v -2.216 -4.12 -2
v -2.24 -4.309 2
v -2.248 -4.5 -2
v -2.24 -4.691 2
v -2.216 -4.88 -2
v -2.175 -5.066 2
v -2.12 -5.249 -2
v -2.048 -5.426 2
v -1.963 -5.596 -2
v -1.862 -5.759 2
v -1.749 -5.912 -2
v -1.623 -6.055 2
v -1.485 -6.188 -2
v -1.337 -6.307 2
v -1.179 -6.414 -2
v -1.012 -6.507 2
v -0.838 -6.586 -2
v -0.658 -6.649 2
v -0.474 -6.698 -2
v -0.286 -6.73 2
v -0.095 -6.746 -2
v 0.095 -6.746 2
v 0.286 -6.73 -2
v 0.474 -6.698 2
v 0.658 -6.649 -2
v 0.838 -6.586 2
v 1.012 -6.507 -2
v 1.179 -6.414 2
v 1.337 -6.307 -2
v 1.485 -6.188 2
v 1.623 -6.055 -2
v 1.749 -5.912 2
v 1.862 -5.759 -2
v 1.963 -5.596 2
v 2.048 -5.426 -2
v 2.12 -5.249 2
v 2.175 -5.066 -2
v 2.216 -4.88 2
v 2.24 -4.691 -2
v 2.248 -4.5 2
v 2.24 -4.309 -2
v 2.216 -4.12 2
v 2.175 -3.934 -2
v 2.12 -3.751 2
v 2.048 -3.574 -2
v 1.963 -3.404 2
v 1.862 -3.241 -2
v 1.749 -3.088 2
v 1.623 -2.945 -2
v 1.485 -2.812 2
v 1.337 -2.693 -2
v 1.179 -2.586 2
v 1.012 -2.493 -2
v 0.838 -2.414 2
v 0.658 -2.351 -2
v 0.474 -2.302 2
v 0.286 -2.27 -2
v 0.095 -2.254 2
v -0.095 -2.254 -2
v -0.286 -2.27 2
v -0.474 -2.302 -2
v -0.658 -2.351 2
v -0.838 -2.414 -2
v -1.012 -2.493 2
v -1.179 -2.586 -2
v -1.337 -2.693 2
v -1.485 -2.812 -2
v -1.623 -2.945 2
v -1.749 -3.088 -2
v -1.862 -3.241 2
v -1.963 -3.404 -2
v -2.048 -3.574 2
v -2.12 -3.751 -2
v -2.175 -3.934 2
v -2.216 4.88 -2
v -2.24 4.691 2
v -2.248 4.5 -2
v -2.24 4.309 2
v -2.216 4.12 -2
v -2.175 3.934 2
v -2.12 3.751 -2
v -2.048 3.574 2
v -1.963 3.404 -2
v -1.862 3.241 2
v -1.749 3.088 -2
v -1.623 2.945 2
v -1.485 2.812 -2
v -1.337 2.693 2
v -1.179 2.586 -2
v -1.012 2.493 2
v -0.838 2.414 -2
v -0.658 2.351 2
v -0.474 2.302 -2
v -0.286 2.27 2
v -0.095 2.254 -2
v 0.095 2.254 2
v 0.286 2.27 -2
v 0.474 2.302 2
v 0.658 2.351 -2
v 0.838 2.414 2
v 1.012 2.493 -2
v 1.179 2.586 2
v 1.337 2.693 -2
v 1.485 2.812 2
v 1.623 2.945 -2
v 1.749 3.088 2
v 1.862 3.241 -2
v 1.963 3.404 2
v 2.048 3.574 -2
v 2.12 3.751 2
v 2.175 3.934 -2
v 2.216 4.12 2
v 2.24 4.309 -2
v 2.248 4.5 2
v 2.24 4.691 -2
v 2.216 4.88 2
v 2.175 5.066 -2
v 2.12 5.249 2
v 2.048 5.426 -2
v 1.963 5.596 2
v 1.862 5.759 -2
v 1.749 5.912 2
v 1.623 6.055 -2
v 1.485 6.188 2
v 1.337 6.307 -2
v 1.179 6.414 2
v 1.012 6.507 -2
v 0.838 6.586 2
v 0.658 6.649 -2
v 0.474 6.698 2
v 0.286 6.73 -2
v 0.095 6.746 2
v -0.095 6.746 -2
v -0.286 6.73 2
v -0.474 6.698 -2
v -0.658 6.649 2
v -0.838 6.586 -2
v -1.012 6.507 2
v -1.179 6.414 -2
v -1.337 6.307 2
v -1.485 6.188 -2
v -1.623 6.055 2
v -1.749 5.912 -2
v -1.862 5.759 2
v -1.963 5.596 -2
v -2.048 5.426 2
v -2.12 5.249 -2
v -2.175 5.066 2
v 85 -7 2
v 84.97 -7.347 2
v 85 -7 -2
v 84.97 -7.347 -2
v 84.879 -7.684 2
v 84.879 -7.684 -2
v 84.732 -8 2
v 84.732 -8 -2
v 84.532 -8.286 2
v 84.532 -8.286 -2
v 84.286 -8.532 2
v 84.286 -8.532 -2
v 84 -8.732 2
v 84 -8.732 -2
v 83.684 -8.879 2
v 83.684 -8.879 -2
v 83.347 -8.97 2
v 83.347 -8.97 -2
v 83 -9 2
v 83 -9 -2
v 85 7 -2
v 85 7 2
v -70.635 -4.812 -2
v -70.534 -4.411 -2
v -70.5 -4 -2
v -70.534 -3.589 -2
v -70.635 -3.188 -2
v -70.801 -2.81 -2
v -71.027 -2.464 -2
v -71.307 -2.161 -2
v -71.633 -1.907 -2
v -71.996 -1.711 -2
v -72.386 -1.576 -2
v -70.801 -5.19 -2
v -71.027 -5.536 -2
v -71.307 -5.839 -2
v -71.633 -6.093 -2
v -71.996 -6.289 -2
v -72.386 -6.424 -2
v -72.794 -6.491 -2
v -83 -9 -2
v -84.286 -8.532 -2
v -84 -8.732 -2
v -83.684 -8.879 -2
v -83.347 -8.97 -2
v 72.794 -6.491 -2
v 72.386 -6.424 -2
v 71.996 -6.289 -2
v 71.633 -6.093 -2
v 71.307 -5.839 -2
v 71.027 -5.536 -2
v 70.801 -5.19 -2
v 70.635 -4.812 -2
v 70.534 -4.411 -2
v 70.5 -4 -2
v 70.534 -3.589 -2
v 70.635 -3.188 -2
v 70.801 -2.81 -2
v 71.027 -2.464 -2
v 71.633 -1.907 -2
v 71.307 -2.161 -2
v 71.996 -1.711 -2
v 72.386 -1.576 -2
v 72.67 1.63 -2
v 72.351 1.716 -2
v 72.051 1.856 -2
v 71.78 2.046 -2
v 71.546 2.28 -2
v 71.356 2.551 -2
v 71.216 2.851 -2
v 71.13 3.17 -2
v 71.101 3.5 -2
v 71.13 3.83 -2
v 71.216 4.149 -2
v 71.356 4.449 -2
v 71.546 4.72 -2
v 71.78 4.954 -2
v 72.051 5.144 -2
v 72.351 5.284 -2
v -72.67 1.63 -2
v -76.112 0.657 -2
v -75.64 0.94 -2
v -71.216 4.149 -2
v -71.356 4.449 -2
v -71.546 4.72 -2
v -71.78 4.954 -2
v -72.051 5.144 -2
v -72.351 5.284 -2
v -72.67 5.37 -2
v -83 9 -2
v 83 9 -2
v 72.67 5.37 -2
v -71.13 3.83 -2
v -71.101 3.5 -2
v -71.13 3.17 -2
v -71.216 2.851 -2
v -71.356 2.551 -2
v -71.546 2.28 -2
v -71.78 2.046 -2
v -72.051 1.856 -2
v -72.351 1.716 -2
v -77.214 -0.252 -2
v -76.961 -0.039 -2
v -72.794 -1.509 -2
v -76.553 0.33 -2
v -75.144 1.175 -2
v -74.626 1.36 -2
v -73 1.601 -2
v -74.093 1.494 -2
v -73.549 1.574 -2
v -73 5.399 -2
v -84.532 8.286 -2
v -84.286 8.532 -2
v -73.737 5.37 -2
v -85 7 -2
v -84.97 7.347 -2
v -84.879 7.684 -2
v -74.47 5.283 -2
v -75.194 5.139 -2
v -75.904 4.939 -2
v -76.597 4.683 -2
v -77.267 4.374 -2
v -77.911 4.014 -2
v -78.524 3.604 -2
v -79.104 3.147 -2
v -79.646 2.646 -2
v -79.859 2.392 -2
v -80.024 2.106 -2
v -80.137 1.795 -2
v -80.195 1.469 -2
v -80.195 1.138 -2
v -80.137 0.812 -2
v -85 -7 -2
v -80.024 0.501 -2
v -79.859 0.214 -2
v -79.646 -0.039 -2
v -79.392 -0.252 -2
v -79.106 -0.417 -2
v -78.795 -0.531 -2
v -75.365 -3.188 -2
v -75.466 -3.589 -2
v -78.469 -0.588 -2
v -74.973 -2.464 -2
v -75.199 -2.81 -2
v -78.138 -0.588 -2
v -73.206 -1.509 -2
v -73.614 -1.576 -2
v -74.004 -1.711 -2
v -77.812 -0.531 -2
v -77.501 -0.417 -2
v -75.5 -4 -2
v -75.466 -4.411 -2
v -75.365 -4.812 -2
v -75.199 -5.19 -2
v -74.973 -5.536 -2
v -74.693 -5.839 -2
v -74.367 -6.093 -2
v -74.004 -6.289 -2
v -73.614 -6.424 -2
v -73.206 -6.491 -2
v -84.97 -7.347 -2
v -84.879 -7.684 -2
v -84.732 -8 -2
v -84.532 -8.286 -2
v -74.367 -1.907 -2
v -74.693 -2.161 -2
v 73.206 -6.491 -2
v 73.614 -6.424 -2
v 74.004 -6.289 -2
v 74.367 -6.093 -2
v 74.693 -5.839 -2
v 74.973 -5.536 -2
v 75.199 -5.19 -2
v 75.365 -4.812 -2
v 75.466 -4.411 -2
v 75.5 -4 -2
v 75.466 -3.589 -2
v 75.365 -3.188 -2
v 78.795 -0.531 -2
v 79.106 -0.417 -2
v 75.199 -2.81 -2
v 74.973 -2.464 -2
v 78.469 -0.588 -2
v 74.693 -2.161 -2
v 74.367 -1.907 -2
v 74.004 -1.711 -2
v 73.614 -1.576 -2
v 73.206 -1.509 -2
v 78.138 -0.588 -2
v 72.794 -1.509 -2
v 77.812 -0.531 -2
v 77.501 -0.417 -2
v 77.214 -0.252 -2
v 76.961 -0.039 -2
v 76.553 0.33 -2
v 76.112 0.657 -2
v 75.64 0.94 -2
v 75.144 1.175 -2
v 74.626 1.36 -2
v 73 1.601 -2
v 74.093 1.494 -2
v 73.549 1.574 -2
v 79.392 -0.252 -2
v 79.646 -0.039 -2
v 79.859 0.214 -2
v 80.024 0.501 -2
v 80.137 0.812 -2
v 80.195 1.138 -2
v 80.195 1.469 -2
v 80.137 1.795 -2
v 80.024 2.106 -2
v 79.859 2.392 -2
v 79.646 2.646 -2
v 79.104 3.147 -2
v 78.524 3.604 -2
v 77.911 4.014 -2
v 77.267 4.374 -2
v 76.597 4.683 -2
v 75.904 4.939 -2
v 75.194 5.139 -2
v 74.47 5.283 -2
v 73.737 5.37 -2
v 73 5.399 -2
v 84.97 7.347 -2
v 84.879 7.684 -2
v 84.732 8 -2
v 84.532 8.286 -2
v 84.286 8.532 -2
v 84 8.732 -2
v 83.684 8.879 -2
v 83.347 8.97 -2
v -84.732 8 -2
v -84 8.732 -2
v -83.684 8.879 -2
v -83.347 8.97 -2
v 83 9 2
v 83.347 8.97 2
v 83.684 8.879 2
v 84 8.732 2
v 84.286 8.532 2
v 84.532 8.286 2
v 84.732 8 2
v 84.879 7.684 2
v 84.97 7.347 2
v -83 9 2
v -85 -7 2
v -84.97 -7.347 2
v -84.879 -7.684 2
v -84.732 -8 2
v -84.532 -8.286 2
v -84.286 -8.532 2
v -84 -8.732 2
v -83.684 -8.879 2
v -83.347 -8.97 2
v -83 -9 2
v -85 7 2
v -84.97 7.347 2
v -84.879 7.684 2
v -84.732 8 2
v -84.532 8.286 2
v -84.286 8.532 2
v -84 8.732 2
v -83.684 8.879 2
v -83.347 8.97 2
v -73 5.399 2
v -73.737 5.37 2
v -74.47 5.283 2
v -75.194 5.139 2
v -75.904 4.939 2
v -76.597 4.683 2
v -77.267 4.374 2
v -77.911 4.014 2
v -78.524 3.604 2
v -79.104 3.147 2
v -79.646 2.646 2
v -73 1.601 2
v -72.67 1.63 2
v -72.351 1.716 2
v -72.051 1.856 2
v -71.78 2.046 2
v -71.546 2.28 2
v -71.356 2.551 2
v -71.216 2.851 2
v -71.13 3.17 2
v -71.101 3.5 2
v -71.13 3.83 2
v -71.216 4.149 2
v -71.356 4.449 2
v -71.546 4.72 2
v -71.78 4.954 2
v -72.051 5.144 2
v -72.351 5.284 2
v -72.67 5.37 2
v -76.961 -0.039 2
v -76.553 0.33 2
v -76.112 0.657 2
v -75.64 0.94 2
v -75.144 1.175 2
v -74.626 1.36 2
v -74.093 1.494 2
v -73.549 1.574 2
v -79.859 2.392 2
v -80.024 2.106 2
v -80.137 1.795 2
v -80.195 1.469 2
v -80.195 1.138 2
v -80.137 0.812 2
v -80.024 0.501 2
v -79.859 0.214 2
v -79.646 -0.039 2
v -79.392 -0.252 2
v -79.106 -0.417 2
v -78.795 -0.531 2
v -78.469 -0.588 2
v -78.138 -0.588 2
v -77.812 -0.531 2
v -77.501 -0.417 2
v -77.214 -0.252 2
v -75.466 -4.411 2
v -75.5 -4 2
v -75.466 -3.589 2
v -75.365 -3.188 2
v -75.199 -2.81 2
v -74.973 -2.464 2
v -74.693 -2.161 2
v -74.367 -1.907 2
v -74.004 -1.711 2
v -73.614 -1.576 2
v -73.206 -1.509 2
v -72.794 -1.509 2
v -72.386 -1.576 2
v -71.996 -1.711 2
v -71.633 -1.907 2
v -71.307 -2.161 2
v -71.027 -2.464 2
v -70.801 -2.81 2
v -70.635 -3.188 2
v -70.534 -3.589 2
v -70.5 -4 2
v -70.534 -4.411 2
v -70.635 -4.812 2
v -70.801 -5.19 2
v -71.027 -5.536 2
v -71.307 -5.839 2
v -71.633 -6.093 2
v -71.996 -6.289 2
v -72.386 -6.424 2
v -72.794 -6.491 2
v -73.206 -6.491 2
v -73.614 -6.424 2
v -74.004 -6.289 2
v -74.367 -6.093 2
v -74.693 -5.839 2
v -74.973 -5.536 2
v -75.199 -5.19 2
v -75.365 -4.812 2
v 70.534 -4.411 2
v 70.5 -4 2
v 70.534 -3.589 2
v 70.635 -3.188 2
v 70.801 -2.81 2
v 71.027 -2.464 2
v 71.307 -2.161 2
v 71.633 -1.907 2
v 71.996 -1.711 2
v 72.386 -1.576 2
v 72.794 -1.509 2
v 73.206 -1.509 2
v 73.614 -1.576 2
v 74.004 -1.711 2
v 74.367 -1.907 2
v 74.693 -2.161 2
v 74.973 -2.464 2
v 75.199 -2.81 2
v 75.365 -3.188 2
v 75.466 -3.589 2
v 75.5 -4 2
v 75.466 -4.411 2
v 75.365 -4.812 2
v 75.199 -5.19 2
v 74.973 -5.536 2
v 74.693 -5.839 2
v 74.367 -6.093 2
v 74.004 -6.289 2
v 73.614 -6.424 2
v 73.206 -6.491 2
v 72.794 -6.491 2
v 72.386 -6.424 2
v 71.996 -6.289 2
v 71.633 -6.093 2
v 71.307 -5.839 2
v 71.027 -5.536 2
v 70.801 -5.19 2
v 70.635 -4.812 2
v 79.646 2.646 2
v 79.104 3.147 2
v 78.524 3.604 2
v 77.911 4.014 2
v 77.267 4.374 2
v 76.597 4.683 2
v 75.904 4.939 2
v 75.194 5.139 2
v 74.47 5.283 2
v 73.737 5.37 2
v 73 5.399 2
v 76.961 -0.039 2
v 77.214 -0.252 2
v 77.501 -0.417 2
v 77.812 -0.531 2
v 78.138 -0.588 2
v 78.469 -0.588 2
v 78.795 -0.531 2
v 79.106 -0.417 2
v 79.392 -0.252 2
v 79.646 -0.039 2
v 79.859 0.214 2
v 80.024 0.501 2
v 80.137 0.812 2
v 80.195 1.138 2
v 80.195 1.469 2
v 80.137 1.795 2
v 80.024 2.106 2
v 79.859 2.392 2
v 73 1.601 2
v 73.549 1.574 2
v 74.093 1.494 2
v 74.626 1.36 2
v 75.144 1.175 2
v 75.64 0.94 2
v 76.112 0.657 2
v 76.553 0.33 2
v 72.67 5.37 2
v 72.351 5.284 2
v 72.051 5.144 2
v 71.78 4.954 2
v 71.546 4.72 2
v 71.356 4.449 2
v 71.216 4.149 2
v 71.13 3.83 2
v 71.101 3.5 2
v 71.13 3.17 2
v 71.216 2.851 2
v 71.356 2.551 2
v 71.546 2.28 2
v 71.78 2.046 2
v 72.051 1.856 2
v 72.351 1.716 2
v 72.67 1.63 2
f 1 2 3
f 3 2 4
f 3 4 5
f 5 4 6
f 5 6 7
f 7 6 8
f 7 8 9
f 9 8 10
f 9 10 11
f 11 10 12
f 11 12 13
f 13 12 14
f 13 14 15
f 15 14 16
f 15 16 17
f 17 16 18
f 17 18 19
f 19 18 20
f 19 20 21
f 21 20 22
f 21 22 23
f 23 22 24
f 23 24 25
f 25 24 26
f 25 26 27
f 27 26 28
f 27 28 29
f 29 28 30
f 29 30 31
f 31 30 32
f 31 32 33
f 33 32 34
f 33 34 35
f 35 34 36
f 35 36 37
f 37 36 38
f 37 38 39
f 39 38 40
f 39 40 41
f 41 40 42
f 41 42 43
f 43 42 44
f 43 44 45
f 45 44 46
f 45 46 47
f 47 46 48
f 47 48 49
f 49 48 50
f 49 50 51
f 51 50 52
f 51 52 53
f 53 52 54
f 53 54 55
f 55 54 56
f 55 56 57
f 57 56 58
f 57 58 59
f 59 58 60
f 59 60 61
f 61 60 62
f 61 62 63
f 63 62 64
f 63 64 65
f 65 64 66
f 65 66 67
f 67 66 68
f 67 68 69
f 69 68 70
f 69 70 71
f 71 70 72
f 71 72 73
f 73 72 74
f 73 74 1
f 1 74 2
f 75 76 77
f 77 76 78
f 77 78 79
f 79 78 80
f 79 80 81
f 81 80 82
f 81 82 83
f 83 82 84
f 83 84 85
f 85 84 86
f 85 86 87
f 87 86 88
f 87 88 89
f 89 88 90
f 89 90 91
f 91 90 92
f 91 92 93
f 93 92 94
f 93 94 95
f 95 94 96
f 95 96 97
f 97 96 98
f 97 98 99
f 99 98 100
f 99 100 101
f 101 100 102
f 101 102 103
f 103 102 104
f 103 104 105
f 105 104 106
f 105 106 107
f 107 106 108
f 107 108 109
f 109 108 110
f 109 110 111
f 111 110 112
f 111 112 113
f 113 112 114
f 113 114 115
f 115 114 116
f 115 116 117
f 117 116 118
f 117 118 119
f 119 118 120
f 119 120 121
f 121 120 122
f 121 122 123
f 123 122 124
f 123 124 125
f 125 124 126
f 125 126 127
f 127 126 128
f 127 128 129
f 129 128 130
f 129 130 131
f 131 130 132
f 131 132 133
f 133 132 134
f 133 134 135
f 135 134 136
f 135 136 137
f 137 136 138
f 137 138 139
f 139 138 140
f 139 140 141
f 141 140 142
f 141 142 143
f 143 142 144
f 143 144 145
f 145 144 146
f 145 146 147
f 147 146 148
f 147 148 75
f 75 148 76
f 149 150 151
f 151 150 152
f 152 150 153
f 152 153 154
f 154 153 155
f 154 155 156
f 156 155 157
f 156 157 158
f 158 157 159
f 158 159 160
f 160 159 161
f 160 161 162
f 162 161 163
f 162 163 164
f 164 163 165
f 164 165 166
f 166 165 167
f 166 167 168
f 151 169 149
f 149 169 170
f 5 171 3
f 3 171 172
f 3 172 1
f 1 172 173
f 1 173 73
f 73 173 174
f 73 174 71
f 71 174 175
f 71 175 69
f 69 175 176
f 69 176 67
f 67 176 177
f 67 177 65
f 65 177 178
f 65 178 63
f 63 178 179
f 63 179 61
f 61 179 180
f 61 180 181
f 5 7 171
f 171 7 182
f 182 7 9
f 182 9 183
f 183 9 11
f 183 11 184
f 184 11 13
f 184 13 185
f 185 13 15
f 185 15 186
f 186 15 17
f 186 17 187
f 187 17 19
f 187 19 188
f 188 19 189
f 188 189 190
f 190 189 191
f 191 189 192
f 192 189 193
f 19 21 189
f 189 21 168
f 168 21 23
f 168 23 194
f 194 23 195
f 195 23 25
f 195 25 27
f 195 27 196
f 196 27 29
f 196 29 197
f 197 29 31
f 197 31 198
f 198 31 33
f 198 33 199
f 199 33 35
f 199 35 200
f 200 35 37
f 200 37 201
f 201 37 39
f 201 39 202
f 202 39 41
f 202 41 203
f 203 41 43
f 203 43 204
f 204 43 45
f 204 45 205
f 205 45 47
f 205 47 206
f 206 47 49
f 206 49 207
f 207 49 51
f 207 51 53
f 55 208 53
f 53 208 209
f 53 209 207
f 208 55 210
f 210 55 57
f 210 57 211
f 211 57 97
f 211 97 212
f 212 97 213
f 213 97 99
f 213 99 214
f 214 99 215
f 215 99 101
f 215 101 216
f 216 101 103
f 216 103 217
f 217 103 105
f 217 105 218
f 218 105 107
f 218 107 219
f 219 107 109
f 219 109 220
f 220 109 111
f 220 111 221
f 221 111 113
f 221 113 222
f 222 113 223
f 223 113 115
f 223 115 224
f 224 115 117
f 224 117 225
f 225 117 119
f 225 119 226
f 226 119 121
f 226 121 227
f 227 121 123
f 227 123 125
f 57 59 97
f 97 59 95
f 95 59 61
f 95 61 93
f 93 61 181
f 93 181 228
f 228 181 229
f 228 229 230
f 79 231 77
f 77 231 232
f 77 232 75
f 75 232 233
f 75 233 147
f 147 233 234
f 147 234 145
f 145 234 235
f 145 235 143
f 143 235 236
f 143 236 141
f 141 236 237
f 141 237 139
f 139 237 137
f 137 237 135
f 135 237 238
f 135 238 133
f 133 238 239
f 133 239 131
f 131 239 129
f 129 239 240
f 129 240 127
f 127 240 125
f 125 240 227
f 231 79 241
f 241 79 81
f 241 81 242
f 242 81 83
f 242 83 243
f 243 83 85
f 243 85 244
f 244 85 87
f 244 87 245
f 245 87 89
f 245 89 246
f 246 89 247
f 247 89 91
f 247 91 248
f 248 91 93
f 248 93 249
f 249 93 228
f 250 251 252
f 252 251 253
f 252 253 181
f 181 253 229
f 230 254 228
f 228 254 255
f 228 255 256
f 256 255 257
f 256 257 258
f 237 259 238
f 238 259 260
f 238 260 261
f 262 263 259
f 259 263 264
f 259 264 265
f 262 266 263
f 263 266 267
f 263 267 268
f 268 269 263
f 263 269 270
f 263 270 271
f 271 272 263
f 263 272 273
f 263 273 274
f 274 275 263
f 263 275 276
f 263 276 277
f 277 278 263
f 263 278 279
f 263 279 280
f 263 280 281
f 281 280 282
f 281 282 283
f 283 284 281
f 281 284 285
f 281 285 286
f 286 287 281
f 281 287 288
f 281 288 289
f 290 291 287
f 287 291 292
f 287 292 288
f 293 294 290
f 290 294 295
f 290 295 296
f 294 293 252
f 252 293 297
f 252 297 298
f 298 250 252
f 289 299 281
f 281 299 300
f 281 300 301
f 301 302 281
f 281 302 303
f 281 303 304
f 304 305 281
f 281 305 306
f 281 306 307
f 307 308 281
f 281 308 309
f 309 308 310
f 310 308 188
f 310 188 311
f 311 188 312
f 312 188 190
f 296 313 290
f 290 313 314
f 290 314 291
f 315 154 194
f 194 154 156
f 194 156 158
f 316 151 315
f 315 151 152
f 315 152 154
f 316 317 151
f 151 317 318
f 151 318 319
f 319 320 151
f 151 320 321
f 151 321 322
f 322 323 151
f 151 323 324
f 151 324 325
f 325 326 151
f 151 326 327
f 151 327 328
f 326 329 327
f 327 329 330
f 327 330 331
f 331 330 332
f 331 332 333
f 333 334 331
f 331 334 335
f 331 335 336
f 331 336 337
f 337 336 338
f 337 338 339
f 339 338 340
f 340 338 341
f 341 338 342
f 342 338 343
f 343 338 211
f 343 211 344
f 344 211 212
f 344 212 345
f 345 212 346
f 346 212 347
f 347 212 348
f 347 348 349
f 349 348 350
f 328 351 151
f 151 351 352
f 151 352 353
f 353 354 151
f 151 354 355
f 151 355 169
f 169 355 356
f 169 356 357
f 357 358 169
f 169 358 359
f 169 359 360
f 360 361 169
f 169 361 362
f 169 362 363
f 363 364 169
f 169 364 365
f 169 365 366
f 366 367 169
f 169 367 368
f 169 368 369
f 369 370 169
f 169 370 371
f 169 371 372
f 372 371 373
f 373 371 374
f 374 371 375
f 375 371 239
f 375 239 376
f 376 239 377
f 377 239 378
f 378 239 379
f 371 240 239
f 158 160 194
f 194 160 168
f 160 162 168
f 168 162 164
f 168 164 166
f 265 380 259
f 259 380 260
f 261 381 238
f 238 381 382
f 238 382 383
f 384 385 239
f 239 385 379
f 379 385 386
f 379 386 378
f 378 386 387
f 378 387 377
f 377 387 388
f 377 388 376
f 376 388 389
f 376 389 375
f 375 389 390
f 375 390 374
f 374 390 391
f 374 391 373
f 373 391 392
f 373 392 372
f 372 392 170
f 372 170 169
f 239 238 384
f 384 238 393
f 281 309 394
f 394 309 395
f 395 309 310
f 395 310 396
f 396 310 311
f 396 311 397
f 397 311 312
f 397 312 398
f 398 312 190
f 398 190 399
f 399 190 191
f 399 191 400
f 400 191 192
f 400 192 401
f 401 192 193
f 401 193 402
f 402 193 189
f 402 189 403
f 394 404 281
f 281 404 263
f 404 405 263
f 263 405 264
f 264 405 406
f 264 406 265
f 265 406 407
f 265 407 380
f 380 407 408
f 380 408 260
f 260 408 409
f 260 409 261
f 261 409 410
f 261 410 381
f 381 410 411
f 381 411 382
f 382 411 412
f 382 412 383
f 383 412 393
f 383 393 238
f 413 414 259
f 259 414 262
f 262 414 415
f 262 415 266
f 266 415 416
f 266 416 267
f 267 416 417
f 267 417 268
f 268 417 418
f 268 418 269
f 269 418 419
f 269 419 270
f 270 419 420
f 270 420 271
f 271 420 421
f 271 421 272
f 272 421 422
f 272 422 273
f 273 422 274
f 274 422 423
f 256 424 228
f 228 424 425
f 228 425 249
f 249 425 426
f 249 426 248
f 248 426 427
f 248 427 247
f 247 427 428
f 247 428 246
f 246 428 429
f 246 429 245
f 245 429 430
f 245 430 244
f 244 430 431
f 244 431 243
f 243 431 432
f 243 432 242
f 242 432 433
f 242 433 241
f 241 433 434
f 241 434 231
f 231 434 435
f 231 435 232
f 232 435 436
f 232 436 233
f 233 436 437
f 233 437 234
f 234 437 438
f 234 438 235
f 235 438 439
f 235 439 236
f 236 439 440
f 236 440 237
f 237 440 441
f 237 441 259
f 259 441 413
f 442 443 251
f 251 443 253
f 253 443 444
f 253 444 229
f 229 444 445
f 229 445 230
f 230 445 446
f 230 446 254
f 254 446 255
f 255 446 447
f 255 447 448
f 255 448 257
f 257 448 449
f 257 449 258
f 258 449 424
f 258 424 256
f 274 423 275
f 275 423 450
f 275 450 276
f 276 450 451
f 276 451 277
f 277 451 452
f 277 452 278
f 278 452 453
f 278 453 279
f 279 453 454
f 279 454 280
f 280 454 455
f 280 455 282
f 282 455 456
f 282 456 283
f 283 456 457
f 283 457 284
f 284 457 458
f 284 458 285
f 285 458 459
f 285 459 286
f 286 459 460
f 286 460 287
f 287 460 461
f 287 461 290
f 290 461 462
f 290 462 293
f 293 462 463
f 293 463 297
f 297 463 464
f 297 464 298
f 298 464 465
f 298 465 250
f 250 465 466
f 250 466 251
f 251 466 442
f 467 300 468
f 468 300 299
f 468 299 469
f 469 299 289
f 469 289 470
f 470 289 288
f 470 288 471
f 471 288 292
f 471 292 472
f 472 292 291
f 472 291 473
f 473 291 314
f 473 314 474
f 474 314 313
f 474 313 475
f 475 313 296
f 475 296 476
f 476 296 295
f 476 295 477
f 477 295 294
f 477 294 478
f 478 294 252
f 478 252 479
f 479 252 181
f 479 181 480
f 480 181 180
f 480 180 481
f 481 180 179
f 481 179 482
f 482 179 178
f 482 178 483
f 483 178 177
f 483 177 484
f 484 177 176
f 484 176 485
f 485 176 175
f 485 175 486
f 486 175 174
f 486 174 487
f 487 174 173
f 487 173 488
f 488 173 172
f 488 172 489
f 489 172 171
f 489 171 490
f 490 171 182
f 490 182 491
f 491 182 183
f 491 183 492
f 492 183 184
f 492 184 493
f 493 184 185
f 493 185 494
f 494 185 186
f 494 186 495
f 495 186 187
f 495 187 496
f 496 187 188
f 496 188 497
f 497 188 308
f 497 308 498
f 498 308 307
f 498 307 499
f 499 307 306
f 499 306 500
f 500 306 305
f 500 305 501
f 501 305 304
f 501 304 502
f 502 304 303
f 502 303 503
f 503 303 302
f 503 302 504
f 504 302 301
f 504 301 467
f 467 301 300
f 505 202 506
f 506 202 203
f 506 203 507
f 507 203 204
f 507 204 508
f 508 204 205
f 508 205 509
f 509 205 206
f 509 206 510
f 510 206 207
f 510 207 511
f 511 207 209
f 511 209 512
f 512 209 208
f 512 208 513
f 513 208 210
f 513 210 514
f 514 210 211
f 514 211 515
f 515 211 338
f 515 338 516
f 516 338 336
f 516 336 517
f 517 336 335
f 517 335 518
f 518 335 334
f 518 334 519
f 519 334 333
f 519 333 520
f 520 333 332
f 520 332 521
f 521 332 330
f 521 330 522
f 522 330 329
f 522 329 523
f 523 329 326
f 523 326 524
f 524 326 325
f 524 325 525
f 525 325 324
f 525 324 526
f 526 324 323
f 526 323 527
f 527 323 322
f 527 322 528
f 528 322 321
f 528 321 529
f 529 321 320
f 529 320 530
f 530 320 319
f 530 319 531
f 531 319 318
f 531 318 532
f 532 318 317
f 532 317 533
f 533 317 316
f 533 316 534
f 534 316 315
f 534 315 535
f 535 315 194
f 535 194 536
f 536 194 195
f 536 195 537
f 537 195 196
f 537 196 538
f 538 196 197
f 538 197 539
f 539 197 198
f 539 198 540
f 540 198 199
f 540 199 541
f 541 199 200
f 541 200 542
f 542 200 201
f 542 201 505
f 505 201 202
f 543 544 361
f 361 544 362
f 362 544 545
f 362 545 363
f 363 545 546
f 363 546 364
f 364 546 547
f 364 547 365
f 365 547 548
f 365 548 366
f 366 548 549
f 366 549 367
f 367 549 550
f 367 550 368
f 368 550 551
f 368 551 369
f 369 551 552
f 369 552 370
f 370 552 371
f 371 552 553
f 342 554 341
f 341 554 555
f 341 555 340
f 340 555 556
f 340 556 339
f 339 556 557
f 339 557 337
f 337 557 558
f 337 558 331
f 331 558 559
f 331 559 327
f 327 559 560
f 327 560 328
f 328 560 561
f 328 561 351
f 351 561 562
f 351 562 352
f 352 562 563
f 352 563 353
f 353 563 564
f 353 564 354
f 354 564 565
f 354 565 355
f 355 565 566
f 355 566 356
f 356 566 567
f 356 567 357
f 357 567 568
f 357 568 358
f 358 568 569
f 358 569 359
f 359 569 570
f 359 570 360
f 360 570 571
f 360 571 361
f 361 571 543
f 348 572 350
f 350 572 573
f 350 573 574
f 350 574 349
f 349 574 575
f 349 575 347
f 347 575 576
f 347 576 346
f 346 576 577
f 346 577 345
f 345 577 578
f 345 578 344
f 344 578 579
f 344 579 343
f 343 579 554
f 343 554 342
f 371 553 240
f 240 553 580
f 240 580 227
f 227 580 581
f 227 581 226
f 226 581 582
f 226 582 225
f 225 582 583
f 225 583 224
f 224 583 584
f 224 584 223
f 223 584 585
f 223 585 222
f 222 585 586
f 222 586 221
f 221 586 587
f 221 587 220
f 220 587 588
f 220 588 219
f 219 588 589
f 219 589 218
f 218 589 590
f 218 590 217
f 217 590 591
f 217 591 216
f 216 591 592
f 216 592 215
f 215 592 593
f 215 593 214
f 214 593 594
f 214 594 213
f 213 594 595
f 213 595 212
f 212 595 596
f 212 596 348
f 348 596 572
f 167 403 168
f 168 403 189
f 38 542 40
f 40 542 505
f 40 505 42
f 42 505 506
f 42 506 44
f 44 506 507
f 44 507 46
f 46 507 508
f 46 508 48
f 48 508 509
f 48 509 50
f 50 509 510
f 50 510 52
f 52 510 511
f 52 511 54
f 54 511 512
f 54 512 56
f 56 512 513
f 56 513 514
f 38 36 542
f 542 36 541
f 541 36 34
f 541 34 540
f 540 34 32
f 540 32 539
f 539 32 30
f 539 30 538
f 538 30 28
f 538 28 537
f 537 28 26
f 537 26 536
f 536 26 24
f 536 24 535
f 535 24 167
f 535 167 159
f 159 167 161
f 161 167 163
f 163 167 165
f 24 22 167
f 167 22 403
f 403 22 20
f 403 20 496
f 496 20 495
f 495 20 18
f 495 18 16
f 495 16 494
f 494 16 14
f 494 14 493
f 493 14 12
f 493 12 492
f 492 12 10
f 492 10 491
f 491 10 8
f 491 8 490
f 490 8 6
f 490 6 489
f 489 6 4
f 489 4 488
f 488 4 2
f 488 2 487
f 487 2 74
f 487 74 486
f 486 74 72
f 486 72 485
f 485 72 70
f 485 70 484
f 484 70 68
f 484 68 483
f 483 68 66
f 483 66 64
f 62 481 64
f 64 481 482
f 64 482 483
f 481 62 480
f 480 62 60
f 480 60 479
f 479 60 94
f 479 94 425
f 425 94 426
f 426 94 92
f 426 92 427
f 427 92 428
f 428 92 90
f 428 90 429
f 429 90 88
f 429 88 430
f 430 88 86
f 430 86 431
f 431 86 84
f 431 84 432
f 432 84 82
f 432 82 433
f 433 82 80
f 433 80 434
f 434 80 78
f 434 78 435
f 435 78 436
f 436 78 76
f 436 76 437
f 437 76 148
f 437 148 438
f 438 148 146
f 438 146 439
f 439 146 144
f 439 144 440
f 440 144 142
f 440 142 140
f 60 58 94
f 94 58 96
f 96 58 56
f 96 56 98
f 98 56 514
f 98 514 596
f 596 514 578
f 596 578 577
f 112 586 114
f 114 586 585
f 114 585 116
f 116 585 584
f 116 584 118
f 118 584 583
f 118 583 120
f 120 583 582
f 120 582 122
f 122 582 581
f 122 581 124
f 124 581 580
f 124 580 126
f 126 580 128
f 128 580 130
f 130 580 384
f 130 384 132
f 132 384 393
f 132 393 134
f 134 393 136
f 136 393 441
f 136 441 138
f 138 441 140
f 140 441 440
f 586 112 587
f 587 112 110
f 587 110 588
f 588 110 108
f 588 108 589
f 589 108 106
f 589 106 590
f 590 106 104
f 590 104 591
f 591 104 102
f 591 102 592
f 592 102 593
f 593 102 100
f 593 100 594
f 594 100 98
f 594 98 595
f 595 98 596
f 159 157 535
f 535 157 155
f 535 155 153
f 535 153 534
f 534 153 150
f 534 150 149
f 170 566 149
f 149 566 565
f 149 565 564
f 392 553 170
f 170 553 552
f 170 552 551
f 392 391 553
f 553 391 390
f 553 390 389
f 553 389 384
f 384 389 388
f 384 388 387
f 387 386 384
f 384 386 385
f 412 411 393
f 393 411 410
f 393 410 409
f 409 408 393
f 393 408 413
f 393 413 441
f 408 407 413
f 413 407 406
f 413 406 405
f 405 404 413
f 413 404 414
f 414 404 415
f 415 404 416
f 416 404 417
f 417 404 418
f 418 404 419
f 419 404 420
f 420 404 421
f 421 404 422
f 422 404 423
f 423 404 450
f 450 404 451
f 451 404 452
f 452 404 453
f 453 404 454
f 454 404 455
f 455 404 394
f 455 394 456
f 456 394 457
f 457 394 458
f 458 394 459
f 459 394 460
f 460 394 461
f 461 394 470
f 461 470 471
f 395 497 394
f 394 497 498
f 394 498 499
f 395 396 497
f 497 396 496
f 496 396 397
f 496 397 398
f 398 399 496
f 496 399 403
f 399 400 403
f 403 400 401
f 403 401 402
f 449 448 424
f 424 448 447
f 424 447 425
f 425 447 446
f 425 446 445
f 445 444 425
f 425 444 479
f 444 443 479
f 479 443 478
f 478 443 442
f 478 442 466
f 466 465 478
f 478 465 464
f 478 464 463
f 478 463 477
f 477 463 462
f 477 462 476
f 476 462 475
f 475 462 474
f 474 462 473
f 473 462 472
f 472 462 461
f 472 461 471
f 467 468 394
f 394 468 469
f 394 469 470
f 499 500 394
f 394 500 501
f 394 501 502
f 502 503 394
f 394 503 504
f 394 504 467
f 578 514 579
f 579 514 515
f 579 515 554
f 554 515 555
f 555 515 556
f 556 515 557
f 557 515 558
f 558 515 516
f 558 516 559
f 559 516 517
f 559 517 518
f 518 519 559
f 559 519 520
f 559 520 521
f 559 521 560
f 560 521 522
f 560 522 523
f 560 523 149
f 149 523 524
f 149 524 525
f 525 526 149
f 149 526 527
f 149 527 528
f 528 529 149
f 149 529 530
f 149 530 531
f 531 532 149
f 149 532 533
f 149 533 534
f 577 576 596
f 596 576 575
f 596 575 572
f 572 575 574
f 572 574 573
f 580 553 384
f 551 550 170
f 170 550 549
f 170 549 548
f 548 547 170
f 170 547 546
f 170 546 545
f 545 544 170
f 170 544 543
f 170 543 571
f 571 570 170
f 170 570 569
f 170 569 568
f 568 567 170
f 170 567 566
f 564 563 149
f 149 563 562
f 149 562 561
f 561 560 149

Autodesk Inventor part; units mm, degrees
ref_plane "YZ Plane" through (0, 0, 0) normal (1, 0, 0) x (0, 1, 0)
ref_plane "XZ Plane" through (0, 0, 0) normal (0, 1, 0) x (-1, 0, 0)
ref_plane "XY Plane" through (0, 0, 0) normal (0, 0, 1) x (1, 0, 0)
sketch "Sketch1" plane through (0, 0, 0) normal (0, 0, 1) x (1, 0, 0)
  line L0 (-85, -9) -> (85, -9)
  line L1 (85, -9) -> (85, 9)
  line L2 (85, 9) -> (-85, 9)
  line L3 (-85, 9) -> (-85, -9)
  line L4 (-85, -9) -> (85, 9) construction
  line L5 (85, -9) -> (-85, 9) construction
  point P0 (0, 0)
  dimension "d3" = 18
  dimension "d26" = 170
extrude "Extrusion1" add sketch "Sketch1" along normal mid plane 4
sketch "Sketch2" plane through (0, 0, -2) normal (0, 0, -1) x (-1, 0, 0)
  line L0 (0, -15) -> (0, 15) construction
  line L1 (85, 9) -> (-85, 9) projected
  circle A0 centre (73, -4) radius 2.5
  arc A1 (73, 5.3986) -> (73, 1.6013) centre (73, 3.5) ccw
  line L2 (73, 3.5) -> (73, -4) construction
  line L3 (73, -4) -> (78.3033, -4) construction
  circle A2 centre (73, -4) radius 7.5 construction
  arc A3 (76.9608, -0.0392) -> (79.6458, 2.6458) centre (78.3033, 1.3033) ccw
  arc A4 (79.6458, 2.6458) -> (73, 5.3986) centre (73, -4) ccw
  arc A5 (76.9608, -0.0392) -> (73, 1.6013) centre (73, -4) ccw
  line L4 (85, -10.7625) -> (85, 10.7625) construction
  line L5 (73, -4) -> (78.3033, 1.3033) construction
  line L6 (78.3033, 1.3033) -> (78.3033, -4) construction
  line L7 (85, -9) -> (85, 9) projected
  line L8 (-85, -9) -> (85, -9) projected
  line L9 (-73, 3.5) -> (-73, -4) construction
  arc A6 (-73, 1.6013) -> (-73, 5.3986) centre (-73, 3.5) ccw
  circle A7 centre (-73, -4) radius 2.5
  arc A8 (-73, 1.6013) -> (-76.9608, -0.0392) centre (-73, -4) ccw
  line L10 (-73, -4) -> (-78.3033, -4) construction
  line L11 (-73, -4) -> (-78.3033, 1.3033) construction
  line L12 (-78.3033, 1.3033) -> (-78.3033, -4) construction
  circle A9 centre (-73, -4) radius 7.5 construction
  arc A10 (-73, 5.3986) -> (-79.6458, 2.6458) centre (-73, -4) ccw
  arc A11 (-79.6458, 2.6458) -> (-76.9608, -0.0392) centre (-78.3033, 1.3033) ccw
  line L13 (-85, -10.7625) -> (-85, 10.7625) construction
  line L14 (-85, -9) -> (-85, 9)
  point P0 (0, 0)
  point P1 (85, 0)
  point P2 (-85, 0)
  dimension "d40" = 5
  dimension "d41" = 3.7973
  dimension "d42" = 3.7973
  dimension "d43" = 15
  dimension "d44" = 12
  dimension "d45" = 5
extrude "Extrusion2" cut sketch "Sketch2" against normal through all contours A0 | A4 A3 A5 A1 | A8 A11 A10 A6 | A7
fillet "Fillet1" radius 2 4 edges at (-85, 9, 0) (-85, -9, 0) (85, 9, 0) (85, -9, 0)
sketch "Sketch5" plane through (0, 0, 2) normal (0, 0, 1) x (1, 0, 0)
  line L0 (0, -9) -> (0, 0) construction
  line L1 (0, 0) -> (0, 9) construction
  line L2 (83, 9) -> (-83, 9) construction
  line L3 (-83, -9) -> (83, -9) construction
  point P0 (0, -4.5)
  point P1 (0, 4.5)
hole "Hole2" at (0, -4.5, 2) at (0, 4.5, 2) direction (0, 0, -1) diameter 4.496 end through all clearance for "Flat Head Machine Screw (82)" size "#8" standard "Ansi Unified Screw Threads"
equation "\"d42\" = d41"
properties part number "CameraBase"
